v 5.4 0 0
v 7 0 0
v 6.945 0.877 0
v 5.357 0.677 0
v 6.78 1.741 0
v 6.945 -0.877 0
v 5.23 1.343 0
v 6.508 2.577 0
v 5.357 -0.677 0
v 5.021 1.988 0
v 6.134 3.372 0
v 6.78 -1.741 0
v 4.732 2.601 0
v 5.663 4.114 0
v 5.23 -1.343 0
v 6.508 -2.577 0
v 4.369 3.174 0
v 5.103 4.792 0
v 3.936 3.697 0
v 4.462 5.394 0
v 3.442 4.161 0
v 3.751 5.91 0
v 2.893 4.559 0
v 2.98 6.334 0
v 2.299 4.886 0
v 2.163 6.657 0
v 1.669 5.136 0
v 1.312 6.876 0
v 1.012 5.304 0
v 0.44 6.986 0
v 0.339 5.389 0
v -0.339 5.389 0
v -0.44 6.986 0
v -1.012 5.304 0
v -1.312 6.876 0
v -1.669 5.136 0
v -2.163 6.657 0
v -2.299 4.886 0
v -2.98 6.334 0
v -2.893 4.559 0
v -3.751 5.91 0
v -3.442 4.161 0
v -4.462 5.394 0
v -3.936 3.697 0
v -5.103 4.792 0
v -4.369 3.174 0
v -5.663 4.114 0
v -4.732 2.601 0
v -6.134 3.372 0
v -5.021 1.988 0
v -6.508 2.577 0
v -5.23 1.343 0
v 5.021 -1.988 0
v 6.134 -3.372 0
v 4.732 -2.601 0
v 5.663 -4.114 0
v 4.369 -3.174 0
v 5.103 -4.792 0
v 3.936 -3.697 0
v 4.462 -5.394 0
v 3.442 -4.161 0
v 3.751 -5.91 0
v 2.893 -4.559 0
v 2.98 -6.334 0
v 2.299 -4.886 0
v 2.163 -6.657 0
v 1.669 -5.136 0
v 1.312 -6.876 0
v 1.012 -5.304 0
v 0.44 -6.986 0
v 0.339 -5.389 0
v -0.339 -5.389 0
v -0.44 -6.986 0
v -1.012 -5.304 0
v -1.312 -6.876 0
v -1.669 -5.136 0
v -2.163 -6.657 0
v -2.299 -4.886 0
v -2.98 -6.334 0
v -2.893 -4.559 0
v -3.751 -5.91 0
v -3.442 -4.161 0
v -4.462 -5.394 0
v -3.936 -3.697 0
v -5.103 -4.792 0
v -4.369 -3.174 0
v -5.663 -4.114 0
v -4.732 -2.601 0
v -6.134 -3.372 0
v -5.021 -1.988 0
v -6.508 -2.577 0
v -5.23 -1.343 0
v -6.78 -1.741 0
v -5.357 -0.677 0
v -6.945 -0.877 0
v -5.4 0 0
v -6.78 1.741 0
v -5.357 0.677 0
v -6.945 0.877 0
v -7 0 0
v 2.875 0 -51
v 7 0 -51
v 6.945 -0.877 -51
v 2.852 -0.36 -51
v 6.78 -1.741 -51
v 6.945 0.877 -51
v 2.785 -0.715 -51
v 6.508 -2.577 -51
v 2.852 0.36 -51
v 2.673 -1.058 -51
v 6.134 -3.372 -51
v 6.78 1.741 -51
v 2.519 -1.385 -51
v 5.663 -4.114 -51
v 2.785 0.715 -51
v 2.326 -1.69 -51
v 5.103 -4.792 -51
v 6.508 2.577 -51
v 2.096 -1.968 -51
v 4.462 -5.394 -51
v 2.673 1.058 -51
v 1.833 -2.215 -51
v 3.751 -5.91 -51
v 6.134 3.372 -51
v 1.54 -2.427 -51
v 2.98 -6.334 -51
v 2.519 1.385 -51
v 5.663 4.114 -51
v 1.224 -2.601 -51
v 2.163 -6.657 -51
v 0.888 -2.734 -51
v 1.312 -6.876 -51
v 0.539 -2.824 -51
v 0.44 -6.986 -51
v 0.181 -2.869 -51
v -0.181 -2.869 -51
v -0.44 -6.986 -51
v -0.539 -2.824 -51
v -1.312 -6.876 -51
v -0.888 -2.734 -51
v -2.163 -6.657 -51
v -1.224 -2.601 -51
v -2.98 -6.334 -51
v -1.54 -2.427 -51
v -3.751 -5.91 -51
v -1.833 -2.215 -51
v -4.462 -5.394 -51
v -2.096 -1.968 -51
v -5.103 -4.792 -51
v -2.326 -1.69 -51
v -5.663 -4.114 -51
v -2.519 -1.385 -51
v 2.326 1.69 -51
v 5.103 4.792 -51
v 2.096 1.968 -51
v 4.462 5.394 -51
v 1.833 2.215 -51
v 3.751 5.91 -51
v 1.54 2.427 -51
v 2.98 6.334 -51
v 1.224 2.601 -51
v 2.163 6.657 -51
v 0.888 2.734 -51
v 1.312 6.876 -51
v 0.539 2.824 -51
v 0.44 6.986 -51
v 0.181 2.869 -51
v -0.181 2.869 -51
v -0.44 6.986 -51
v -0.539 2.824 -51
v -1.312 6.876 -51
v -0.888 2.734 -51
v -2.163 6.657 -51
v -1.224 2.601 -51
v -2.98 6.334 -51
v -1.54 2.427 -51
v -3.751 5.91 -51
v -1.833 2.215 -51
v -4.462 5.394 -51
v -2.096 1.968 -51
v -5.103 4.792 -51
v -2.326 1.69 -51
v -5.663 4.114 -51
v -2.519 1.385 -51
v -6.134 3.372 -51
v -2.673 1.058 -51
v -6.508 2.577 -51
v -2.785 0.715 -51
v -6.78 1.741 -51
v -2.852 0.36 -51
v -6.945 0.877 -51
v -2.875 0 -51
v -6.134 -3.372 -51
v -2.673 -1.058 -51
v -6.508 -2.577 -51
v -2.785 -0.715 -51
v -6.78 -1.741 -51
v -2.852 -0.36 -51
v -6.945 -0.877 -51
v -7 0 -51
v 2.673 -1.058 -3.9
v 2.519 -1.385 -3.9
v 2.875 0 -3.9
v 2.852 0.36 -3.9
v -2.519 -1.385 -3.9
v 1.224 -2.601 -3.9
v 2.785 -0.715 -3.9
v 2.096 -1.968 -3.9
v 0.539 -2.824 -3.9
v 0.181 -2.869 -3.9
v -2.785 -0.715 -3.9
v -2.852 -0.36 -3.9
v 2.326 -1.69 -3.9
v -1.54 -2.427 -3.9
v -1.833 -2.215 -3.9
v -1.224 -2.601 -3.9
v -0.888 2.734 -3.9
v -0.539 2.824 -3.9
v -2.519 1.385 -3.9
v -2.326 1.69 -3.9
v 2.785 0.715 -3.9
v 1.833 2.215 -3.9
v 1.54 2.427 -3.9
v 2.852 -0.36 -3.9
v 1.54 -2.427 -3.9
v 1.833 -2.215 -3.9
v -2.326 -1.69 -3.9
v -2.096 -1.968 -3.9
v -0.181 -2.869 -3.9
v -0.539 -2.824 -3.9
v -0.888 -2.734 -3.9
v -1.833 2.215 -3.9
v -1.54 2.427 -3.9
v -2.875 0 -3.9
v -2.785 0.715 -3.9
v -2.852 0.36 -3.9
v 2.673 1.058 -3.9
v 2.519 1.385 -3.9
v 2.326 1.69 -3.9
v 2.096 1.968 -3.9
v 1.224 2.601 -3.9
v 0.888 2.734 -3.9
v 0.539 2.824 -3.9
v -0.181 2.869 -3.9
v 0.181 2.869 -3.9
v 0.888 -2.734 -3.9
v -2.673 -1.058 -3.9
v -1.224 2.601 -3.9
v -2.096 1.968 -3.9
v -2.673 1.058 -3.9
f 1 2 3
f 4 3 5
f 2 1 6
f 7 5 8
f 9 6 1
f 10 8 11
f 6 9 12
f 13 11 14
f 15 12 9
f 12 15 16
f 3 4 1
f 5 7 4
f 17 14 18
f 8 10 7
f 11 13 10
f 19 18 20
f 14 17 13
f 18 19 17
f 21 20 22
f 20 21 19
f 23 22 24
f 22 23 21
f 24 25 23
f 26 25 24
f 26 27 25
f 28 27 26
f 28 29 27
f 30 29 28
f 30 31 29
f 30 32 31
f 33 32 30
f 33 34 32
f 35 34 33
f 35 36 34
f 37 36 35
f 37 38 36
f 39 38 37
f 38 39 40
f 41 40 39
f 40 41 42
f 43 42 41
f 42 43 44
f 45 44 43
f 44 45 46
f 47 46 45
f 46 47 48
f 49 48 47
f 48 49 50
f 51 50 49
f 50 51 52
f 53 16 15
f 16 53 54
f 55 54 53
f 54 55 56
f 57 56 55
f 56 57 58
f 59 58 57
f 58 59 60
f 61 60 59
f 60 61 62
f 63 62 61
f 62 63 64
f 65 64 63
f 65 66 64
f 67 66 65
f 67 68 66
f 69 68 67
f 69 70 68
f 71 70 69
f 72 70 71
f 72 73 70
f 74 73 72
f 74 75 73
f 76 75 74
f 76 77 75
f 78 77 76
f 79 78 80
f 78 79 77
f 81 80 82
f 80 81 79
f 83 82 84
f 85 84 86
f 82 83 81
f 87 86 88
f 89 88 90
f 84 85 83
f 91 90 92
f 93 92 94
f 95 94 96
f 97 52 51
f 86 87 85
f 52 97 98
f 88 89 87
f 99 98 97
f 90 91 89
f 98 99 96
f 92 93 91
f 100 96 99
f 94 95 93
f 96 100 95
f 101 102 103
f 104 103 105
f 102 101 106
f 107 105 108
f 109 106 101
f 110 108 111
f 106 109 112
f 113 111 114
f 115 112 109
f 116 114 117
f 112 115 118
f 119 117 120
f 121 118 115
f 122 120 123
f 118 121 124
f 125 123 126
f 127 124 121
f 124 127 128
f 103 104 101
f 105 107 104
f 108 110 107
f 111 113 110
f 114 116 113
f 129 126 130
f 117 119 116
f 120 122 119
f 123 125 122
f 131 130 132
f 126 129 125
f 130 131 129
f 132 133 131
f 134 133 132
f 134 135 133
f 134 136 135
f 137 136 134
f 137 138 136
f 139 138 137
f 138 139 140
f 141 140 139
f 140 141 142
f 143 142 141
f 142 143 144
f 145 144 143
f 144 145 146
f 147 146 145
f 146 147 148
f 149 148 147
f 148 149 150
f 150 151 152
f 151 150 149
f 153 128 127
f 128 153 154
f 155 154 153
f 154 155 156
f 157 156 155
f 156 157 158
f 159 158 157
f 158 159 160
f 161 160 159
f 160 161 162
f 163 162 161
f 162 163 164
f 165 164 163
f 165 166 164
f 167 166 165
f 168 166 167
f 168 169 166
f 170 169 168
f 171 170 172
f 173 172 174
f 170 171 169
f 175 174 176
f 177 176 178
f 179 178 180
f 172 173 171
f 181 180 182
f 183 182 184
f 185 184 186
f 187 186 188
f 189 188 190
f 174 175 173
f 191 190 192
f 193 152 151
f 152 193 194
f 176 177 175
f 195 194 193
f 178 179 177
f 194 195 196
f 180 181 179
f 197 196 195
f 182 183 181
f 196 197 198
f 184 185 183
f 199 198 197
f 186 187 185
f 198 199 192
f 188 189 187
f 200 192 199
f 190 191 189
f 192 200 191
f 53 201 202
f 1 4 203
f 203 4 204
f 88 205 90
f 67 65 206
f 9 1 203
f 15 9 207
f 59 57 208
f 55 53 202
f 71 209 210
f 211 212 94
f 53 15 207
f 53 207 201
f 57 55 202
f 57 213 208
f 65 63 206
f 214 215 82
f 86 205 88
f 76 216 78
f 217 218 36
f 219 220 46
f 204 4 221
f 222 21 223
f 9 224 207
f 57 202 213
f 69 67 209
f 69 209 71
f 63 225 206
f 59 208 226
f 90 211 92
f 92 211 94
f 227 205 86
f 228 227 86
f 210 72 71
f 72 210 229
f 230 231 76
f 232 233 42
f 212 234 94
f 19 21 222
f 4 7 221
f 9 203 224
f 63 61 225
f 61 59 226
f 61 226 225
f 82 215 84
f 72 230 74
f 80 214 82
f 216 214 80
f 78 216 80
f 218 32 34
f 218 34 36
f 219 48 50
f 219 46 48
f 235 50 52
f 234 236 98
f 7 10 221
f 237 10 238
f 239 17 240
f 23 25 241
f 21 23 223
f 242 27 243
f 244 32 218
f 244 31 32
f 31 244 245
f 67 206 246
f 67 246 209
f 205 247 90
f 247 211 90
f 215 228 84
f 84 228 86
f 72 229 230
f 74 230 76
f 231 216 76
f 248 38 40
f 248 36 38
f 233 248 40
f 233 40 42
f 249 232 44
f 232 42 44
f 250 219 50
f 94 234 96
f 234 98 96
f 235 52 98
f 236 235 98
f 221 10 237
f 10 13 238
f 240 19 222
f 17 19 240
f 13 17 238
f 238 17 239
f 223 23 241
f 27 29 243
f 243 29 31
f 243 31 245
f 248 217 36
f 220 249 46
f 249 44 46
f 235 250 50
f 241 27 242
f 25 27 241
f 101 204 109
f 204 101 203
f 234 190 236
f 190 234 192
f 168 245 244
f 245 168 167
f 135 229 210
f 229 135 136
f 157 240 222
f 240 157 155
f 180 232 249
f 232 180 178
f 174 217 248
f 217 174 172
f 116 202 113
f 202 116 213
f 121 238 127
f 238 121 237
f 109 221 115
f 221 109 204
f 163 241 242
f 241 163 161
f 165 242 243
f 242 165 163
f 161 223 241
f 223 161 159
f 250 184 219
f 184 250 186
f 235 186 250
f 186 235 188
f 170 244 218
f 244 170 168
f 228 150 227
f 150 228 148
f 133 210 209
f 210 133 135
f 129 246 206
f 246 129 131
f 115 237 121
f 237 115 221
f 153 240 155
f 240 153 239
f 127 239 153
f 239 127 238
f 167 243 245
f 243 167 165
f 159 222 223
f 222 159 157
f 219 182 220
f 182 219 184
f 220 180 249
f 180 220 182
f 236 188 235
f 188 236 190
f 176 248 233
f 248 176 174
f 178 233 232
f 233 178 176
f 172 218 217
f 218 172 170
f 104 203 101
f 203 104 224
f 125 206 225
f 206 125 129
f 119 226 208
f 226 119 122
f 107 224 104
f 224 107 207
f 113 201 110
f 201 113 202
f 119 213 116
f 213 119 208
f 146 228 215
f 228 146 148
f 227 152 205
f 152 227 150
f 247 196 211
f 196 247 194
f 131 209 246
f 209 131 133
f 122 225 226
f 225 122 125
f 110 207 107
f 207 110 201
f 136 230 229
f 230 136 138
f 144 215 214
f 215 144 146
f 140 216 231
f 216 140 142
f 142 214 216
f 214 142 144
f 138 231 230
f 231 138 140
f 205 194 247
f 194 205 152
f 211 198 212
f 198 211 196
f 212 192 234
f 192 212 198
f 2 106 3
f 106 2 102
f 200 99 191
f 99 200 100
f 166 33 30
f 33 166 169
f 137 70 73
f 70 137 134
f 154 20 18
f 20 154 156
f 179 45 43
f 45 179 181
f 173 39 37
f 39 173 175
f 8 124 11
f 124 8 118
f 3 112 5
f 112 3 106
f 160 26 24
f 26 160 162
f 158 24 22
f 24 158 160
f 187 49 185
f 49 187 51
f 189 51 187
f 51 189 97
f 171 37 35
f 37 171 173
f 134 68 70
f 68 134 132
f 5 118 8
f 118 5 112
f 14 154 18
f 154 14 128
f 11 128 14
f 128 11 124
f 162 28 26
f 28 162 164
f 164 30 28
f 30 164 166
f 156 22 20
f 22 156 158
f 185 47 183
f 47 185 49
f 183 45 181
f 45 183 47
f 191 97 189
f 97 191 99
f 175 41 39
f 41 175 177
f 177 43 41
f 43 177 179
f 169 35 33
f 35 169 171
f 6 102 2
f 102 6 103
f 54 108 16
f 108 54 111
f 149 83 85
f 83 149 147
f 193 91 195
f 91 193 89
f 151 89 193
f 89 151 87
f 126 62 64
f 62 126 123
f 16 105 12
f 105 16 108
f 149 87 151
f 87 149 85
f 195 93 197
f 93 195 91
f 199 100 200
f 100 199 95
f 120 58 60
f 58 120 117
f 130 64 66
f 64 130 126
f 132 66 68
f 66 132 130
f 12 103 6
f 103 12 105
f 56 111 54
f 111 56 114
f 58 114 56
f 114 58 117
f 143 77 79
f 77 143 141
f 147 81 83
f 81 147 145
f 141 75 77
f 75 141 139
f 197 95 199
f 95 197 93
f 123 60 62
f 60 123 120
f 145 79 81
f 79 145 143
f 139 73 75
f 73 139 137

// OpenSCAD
$fn = 50;


difference() {
	union() {
		translate(v = [0, 0, -51.0000000000]) {
			cylinder(h = 51, r = 7.0000000000);
		}
	}
	union() {
		translate(v = [0, 0, 0]) {
			rotate(a = [0, 0, 0]) {
				difference() {
					union() {
						#translate(v = [0, 0, -51.0000000000]) {
							cylinder(h = 51, r = 2.6000000000);
						}
						#translate(v = [0, 0, -3.9000000000]) {
							cylinder(h = 3.9000000000, r = 7.0000000000, r1 = 2.8750000000, r2 = 5.4000000000);
						}
						#translate(v = [0, 0, -51.0000000000]) {
							cylinder(h = 51, r = 2.8750000000);
						}
						#translate(v = [0, 0, -51.0000000000]) {
							cylinder(h = 51, r = 2.6000000000);
						}
					}
					union();
				}
			}
		}
	}
}
